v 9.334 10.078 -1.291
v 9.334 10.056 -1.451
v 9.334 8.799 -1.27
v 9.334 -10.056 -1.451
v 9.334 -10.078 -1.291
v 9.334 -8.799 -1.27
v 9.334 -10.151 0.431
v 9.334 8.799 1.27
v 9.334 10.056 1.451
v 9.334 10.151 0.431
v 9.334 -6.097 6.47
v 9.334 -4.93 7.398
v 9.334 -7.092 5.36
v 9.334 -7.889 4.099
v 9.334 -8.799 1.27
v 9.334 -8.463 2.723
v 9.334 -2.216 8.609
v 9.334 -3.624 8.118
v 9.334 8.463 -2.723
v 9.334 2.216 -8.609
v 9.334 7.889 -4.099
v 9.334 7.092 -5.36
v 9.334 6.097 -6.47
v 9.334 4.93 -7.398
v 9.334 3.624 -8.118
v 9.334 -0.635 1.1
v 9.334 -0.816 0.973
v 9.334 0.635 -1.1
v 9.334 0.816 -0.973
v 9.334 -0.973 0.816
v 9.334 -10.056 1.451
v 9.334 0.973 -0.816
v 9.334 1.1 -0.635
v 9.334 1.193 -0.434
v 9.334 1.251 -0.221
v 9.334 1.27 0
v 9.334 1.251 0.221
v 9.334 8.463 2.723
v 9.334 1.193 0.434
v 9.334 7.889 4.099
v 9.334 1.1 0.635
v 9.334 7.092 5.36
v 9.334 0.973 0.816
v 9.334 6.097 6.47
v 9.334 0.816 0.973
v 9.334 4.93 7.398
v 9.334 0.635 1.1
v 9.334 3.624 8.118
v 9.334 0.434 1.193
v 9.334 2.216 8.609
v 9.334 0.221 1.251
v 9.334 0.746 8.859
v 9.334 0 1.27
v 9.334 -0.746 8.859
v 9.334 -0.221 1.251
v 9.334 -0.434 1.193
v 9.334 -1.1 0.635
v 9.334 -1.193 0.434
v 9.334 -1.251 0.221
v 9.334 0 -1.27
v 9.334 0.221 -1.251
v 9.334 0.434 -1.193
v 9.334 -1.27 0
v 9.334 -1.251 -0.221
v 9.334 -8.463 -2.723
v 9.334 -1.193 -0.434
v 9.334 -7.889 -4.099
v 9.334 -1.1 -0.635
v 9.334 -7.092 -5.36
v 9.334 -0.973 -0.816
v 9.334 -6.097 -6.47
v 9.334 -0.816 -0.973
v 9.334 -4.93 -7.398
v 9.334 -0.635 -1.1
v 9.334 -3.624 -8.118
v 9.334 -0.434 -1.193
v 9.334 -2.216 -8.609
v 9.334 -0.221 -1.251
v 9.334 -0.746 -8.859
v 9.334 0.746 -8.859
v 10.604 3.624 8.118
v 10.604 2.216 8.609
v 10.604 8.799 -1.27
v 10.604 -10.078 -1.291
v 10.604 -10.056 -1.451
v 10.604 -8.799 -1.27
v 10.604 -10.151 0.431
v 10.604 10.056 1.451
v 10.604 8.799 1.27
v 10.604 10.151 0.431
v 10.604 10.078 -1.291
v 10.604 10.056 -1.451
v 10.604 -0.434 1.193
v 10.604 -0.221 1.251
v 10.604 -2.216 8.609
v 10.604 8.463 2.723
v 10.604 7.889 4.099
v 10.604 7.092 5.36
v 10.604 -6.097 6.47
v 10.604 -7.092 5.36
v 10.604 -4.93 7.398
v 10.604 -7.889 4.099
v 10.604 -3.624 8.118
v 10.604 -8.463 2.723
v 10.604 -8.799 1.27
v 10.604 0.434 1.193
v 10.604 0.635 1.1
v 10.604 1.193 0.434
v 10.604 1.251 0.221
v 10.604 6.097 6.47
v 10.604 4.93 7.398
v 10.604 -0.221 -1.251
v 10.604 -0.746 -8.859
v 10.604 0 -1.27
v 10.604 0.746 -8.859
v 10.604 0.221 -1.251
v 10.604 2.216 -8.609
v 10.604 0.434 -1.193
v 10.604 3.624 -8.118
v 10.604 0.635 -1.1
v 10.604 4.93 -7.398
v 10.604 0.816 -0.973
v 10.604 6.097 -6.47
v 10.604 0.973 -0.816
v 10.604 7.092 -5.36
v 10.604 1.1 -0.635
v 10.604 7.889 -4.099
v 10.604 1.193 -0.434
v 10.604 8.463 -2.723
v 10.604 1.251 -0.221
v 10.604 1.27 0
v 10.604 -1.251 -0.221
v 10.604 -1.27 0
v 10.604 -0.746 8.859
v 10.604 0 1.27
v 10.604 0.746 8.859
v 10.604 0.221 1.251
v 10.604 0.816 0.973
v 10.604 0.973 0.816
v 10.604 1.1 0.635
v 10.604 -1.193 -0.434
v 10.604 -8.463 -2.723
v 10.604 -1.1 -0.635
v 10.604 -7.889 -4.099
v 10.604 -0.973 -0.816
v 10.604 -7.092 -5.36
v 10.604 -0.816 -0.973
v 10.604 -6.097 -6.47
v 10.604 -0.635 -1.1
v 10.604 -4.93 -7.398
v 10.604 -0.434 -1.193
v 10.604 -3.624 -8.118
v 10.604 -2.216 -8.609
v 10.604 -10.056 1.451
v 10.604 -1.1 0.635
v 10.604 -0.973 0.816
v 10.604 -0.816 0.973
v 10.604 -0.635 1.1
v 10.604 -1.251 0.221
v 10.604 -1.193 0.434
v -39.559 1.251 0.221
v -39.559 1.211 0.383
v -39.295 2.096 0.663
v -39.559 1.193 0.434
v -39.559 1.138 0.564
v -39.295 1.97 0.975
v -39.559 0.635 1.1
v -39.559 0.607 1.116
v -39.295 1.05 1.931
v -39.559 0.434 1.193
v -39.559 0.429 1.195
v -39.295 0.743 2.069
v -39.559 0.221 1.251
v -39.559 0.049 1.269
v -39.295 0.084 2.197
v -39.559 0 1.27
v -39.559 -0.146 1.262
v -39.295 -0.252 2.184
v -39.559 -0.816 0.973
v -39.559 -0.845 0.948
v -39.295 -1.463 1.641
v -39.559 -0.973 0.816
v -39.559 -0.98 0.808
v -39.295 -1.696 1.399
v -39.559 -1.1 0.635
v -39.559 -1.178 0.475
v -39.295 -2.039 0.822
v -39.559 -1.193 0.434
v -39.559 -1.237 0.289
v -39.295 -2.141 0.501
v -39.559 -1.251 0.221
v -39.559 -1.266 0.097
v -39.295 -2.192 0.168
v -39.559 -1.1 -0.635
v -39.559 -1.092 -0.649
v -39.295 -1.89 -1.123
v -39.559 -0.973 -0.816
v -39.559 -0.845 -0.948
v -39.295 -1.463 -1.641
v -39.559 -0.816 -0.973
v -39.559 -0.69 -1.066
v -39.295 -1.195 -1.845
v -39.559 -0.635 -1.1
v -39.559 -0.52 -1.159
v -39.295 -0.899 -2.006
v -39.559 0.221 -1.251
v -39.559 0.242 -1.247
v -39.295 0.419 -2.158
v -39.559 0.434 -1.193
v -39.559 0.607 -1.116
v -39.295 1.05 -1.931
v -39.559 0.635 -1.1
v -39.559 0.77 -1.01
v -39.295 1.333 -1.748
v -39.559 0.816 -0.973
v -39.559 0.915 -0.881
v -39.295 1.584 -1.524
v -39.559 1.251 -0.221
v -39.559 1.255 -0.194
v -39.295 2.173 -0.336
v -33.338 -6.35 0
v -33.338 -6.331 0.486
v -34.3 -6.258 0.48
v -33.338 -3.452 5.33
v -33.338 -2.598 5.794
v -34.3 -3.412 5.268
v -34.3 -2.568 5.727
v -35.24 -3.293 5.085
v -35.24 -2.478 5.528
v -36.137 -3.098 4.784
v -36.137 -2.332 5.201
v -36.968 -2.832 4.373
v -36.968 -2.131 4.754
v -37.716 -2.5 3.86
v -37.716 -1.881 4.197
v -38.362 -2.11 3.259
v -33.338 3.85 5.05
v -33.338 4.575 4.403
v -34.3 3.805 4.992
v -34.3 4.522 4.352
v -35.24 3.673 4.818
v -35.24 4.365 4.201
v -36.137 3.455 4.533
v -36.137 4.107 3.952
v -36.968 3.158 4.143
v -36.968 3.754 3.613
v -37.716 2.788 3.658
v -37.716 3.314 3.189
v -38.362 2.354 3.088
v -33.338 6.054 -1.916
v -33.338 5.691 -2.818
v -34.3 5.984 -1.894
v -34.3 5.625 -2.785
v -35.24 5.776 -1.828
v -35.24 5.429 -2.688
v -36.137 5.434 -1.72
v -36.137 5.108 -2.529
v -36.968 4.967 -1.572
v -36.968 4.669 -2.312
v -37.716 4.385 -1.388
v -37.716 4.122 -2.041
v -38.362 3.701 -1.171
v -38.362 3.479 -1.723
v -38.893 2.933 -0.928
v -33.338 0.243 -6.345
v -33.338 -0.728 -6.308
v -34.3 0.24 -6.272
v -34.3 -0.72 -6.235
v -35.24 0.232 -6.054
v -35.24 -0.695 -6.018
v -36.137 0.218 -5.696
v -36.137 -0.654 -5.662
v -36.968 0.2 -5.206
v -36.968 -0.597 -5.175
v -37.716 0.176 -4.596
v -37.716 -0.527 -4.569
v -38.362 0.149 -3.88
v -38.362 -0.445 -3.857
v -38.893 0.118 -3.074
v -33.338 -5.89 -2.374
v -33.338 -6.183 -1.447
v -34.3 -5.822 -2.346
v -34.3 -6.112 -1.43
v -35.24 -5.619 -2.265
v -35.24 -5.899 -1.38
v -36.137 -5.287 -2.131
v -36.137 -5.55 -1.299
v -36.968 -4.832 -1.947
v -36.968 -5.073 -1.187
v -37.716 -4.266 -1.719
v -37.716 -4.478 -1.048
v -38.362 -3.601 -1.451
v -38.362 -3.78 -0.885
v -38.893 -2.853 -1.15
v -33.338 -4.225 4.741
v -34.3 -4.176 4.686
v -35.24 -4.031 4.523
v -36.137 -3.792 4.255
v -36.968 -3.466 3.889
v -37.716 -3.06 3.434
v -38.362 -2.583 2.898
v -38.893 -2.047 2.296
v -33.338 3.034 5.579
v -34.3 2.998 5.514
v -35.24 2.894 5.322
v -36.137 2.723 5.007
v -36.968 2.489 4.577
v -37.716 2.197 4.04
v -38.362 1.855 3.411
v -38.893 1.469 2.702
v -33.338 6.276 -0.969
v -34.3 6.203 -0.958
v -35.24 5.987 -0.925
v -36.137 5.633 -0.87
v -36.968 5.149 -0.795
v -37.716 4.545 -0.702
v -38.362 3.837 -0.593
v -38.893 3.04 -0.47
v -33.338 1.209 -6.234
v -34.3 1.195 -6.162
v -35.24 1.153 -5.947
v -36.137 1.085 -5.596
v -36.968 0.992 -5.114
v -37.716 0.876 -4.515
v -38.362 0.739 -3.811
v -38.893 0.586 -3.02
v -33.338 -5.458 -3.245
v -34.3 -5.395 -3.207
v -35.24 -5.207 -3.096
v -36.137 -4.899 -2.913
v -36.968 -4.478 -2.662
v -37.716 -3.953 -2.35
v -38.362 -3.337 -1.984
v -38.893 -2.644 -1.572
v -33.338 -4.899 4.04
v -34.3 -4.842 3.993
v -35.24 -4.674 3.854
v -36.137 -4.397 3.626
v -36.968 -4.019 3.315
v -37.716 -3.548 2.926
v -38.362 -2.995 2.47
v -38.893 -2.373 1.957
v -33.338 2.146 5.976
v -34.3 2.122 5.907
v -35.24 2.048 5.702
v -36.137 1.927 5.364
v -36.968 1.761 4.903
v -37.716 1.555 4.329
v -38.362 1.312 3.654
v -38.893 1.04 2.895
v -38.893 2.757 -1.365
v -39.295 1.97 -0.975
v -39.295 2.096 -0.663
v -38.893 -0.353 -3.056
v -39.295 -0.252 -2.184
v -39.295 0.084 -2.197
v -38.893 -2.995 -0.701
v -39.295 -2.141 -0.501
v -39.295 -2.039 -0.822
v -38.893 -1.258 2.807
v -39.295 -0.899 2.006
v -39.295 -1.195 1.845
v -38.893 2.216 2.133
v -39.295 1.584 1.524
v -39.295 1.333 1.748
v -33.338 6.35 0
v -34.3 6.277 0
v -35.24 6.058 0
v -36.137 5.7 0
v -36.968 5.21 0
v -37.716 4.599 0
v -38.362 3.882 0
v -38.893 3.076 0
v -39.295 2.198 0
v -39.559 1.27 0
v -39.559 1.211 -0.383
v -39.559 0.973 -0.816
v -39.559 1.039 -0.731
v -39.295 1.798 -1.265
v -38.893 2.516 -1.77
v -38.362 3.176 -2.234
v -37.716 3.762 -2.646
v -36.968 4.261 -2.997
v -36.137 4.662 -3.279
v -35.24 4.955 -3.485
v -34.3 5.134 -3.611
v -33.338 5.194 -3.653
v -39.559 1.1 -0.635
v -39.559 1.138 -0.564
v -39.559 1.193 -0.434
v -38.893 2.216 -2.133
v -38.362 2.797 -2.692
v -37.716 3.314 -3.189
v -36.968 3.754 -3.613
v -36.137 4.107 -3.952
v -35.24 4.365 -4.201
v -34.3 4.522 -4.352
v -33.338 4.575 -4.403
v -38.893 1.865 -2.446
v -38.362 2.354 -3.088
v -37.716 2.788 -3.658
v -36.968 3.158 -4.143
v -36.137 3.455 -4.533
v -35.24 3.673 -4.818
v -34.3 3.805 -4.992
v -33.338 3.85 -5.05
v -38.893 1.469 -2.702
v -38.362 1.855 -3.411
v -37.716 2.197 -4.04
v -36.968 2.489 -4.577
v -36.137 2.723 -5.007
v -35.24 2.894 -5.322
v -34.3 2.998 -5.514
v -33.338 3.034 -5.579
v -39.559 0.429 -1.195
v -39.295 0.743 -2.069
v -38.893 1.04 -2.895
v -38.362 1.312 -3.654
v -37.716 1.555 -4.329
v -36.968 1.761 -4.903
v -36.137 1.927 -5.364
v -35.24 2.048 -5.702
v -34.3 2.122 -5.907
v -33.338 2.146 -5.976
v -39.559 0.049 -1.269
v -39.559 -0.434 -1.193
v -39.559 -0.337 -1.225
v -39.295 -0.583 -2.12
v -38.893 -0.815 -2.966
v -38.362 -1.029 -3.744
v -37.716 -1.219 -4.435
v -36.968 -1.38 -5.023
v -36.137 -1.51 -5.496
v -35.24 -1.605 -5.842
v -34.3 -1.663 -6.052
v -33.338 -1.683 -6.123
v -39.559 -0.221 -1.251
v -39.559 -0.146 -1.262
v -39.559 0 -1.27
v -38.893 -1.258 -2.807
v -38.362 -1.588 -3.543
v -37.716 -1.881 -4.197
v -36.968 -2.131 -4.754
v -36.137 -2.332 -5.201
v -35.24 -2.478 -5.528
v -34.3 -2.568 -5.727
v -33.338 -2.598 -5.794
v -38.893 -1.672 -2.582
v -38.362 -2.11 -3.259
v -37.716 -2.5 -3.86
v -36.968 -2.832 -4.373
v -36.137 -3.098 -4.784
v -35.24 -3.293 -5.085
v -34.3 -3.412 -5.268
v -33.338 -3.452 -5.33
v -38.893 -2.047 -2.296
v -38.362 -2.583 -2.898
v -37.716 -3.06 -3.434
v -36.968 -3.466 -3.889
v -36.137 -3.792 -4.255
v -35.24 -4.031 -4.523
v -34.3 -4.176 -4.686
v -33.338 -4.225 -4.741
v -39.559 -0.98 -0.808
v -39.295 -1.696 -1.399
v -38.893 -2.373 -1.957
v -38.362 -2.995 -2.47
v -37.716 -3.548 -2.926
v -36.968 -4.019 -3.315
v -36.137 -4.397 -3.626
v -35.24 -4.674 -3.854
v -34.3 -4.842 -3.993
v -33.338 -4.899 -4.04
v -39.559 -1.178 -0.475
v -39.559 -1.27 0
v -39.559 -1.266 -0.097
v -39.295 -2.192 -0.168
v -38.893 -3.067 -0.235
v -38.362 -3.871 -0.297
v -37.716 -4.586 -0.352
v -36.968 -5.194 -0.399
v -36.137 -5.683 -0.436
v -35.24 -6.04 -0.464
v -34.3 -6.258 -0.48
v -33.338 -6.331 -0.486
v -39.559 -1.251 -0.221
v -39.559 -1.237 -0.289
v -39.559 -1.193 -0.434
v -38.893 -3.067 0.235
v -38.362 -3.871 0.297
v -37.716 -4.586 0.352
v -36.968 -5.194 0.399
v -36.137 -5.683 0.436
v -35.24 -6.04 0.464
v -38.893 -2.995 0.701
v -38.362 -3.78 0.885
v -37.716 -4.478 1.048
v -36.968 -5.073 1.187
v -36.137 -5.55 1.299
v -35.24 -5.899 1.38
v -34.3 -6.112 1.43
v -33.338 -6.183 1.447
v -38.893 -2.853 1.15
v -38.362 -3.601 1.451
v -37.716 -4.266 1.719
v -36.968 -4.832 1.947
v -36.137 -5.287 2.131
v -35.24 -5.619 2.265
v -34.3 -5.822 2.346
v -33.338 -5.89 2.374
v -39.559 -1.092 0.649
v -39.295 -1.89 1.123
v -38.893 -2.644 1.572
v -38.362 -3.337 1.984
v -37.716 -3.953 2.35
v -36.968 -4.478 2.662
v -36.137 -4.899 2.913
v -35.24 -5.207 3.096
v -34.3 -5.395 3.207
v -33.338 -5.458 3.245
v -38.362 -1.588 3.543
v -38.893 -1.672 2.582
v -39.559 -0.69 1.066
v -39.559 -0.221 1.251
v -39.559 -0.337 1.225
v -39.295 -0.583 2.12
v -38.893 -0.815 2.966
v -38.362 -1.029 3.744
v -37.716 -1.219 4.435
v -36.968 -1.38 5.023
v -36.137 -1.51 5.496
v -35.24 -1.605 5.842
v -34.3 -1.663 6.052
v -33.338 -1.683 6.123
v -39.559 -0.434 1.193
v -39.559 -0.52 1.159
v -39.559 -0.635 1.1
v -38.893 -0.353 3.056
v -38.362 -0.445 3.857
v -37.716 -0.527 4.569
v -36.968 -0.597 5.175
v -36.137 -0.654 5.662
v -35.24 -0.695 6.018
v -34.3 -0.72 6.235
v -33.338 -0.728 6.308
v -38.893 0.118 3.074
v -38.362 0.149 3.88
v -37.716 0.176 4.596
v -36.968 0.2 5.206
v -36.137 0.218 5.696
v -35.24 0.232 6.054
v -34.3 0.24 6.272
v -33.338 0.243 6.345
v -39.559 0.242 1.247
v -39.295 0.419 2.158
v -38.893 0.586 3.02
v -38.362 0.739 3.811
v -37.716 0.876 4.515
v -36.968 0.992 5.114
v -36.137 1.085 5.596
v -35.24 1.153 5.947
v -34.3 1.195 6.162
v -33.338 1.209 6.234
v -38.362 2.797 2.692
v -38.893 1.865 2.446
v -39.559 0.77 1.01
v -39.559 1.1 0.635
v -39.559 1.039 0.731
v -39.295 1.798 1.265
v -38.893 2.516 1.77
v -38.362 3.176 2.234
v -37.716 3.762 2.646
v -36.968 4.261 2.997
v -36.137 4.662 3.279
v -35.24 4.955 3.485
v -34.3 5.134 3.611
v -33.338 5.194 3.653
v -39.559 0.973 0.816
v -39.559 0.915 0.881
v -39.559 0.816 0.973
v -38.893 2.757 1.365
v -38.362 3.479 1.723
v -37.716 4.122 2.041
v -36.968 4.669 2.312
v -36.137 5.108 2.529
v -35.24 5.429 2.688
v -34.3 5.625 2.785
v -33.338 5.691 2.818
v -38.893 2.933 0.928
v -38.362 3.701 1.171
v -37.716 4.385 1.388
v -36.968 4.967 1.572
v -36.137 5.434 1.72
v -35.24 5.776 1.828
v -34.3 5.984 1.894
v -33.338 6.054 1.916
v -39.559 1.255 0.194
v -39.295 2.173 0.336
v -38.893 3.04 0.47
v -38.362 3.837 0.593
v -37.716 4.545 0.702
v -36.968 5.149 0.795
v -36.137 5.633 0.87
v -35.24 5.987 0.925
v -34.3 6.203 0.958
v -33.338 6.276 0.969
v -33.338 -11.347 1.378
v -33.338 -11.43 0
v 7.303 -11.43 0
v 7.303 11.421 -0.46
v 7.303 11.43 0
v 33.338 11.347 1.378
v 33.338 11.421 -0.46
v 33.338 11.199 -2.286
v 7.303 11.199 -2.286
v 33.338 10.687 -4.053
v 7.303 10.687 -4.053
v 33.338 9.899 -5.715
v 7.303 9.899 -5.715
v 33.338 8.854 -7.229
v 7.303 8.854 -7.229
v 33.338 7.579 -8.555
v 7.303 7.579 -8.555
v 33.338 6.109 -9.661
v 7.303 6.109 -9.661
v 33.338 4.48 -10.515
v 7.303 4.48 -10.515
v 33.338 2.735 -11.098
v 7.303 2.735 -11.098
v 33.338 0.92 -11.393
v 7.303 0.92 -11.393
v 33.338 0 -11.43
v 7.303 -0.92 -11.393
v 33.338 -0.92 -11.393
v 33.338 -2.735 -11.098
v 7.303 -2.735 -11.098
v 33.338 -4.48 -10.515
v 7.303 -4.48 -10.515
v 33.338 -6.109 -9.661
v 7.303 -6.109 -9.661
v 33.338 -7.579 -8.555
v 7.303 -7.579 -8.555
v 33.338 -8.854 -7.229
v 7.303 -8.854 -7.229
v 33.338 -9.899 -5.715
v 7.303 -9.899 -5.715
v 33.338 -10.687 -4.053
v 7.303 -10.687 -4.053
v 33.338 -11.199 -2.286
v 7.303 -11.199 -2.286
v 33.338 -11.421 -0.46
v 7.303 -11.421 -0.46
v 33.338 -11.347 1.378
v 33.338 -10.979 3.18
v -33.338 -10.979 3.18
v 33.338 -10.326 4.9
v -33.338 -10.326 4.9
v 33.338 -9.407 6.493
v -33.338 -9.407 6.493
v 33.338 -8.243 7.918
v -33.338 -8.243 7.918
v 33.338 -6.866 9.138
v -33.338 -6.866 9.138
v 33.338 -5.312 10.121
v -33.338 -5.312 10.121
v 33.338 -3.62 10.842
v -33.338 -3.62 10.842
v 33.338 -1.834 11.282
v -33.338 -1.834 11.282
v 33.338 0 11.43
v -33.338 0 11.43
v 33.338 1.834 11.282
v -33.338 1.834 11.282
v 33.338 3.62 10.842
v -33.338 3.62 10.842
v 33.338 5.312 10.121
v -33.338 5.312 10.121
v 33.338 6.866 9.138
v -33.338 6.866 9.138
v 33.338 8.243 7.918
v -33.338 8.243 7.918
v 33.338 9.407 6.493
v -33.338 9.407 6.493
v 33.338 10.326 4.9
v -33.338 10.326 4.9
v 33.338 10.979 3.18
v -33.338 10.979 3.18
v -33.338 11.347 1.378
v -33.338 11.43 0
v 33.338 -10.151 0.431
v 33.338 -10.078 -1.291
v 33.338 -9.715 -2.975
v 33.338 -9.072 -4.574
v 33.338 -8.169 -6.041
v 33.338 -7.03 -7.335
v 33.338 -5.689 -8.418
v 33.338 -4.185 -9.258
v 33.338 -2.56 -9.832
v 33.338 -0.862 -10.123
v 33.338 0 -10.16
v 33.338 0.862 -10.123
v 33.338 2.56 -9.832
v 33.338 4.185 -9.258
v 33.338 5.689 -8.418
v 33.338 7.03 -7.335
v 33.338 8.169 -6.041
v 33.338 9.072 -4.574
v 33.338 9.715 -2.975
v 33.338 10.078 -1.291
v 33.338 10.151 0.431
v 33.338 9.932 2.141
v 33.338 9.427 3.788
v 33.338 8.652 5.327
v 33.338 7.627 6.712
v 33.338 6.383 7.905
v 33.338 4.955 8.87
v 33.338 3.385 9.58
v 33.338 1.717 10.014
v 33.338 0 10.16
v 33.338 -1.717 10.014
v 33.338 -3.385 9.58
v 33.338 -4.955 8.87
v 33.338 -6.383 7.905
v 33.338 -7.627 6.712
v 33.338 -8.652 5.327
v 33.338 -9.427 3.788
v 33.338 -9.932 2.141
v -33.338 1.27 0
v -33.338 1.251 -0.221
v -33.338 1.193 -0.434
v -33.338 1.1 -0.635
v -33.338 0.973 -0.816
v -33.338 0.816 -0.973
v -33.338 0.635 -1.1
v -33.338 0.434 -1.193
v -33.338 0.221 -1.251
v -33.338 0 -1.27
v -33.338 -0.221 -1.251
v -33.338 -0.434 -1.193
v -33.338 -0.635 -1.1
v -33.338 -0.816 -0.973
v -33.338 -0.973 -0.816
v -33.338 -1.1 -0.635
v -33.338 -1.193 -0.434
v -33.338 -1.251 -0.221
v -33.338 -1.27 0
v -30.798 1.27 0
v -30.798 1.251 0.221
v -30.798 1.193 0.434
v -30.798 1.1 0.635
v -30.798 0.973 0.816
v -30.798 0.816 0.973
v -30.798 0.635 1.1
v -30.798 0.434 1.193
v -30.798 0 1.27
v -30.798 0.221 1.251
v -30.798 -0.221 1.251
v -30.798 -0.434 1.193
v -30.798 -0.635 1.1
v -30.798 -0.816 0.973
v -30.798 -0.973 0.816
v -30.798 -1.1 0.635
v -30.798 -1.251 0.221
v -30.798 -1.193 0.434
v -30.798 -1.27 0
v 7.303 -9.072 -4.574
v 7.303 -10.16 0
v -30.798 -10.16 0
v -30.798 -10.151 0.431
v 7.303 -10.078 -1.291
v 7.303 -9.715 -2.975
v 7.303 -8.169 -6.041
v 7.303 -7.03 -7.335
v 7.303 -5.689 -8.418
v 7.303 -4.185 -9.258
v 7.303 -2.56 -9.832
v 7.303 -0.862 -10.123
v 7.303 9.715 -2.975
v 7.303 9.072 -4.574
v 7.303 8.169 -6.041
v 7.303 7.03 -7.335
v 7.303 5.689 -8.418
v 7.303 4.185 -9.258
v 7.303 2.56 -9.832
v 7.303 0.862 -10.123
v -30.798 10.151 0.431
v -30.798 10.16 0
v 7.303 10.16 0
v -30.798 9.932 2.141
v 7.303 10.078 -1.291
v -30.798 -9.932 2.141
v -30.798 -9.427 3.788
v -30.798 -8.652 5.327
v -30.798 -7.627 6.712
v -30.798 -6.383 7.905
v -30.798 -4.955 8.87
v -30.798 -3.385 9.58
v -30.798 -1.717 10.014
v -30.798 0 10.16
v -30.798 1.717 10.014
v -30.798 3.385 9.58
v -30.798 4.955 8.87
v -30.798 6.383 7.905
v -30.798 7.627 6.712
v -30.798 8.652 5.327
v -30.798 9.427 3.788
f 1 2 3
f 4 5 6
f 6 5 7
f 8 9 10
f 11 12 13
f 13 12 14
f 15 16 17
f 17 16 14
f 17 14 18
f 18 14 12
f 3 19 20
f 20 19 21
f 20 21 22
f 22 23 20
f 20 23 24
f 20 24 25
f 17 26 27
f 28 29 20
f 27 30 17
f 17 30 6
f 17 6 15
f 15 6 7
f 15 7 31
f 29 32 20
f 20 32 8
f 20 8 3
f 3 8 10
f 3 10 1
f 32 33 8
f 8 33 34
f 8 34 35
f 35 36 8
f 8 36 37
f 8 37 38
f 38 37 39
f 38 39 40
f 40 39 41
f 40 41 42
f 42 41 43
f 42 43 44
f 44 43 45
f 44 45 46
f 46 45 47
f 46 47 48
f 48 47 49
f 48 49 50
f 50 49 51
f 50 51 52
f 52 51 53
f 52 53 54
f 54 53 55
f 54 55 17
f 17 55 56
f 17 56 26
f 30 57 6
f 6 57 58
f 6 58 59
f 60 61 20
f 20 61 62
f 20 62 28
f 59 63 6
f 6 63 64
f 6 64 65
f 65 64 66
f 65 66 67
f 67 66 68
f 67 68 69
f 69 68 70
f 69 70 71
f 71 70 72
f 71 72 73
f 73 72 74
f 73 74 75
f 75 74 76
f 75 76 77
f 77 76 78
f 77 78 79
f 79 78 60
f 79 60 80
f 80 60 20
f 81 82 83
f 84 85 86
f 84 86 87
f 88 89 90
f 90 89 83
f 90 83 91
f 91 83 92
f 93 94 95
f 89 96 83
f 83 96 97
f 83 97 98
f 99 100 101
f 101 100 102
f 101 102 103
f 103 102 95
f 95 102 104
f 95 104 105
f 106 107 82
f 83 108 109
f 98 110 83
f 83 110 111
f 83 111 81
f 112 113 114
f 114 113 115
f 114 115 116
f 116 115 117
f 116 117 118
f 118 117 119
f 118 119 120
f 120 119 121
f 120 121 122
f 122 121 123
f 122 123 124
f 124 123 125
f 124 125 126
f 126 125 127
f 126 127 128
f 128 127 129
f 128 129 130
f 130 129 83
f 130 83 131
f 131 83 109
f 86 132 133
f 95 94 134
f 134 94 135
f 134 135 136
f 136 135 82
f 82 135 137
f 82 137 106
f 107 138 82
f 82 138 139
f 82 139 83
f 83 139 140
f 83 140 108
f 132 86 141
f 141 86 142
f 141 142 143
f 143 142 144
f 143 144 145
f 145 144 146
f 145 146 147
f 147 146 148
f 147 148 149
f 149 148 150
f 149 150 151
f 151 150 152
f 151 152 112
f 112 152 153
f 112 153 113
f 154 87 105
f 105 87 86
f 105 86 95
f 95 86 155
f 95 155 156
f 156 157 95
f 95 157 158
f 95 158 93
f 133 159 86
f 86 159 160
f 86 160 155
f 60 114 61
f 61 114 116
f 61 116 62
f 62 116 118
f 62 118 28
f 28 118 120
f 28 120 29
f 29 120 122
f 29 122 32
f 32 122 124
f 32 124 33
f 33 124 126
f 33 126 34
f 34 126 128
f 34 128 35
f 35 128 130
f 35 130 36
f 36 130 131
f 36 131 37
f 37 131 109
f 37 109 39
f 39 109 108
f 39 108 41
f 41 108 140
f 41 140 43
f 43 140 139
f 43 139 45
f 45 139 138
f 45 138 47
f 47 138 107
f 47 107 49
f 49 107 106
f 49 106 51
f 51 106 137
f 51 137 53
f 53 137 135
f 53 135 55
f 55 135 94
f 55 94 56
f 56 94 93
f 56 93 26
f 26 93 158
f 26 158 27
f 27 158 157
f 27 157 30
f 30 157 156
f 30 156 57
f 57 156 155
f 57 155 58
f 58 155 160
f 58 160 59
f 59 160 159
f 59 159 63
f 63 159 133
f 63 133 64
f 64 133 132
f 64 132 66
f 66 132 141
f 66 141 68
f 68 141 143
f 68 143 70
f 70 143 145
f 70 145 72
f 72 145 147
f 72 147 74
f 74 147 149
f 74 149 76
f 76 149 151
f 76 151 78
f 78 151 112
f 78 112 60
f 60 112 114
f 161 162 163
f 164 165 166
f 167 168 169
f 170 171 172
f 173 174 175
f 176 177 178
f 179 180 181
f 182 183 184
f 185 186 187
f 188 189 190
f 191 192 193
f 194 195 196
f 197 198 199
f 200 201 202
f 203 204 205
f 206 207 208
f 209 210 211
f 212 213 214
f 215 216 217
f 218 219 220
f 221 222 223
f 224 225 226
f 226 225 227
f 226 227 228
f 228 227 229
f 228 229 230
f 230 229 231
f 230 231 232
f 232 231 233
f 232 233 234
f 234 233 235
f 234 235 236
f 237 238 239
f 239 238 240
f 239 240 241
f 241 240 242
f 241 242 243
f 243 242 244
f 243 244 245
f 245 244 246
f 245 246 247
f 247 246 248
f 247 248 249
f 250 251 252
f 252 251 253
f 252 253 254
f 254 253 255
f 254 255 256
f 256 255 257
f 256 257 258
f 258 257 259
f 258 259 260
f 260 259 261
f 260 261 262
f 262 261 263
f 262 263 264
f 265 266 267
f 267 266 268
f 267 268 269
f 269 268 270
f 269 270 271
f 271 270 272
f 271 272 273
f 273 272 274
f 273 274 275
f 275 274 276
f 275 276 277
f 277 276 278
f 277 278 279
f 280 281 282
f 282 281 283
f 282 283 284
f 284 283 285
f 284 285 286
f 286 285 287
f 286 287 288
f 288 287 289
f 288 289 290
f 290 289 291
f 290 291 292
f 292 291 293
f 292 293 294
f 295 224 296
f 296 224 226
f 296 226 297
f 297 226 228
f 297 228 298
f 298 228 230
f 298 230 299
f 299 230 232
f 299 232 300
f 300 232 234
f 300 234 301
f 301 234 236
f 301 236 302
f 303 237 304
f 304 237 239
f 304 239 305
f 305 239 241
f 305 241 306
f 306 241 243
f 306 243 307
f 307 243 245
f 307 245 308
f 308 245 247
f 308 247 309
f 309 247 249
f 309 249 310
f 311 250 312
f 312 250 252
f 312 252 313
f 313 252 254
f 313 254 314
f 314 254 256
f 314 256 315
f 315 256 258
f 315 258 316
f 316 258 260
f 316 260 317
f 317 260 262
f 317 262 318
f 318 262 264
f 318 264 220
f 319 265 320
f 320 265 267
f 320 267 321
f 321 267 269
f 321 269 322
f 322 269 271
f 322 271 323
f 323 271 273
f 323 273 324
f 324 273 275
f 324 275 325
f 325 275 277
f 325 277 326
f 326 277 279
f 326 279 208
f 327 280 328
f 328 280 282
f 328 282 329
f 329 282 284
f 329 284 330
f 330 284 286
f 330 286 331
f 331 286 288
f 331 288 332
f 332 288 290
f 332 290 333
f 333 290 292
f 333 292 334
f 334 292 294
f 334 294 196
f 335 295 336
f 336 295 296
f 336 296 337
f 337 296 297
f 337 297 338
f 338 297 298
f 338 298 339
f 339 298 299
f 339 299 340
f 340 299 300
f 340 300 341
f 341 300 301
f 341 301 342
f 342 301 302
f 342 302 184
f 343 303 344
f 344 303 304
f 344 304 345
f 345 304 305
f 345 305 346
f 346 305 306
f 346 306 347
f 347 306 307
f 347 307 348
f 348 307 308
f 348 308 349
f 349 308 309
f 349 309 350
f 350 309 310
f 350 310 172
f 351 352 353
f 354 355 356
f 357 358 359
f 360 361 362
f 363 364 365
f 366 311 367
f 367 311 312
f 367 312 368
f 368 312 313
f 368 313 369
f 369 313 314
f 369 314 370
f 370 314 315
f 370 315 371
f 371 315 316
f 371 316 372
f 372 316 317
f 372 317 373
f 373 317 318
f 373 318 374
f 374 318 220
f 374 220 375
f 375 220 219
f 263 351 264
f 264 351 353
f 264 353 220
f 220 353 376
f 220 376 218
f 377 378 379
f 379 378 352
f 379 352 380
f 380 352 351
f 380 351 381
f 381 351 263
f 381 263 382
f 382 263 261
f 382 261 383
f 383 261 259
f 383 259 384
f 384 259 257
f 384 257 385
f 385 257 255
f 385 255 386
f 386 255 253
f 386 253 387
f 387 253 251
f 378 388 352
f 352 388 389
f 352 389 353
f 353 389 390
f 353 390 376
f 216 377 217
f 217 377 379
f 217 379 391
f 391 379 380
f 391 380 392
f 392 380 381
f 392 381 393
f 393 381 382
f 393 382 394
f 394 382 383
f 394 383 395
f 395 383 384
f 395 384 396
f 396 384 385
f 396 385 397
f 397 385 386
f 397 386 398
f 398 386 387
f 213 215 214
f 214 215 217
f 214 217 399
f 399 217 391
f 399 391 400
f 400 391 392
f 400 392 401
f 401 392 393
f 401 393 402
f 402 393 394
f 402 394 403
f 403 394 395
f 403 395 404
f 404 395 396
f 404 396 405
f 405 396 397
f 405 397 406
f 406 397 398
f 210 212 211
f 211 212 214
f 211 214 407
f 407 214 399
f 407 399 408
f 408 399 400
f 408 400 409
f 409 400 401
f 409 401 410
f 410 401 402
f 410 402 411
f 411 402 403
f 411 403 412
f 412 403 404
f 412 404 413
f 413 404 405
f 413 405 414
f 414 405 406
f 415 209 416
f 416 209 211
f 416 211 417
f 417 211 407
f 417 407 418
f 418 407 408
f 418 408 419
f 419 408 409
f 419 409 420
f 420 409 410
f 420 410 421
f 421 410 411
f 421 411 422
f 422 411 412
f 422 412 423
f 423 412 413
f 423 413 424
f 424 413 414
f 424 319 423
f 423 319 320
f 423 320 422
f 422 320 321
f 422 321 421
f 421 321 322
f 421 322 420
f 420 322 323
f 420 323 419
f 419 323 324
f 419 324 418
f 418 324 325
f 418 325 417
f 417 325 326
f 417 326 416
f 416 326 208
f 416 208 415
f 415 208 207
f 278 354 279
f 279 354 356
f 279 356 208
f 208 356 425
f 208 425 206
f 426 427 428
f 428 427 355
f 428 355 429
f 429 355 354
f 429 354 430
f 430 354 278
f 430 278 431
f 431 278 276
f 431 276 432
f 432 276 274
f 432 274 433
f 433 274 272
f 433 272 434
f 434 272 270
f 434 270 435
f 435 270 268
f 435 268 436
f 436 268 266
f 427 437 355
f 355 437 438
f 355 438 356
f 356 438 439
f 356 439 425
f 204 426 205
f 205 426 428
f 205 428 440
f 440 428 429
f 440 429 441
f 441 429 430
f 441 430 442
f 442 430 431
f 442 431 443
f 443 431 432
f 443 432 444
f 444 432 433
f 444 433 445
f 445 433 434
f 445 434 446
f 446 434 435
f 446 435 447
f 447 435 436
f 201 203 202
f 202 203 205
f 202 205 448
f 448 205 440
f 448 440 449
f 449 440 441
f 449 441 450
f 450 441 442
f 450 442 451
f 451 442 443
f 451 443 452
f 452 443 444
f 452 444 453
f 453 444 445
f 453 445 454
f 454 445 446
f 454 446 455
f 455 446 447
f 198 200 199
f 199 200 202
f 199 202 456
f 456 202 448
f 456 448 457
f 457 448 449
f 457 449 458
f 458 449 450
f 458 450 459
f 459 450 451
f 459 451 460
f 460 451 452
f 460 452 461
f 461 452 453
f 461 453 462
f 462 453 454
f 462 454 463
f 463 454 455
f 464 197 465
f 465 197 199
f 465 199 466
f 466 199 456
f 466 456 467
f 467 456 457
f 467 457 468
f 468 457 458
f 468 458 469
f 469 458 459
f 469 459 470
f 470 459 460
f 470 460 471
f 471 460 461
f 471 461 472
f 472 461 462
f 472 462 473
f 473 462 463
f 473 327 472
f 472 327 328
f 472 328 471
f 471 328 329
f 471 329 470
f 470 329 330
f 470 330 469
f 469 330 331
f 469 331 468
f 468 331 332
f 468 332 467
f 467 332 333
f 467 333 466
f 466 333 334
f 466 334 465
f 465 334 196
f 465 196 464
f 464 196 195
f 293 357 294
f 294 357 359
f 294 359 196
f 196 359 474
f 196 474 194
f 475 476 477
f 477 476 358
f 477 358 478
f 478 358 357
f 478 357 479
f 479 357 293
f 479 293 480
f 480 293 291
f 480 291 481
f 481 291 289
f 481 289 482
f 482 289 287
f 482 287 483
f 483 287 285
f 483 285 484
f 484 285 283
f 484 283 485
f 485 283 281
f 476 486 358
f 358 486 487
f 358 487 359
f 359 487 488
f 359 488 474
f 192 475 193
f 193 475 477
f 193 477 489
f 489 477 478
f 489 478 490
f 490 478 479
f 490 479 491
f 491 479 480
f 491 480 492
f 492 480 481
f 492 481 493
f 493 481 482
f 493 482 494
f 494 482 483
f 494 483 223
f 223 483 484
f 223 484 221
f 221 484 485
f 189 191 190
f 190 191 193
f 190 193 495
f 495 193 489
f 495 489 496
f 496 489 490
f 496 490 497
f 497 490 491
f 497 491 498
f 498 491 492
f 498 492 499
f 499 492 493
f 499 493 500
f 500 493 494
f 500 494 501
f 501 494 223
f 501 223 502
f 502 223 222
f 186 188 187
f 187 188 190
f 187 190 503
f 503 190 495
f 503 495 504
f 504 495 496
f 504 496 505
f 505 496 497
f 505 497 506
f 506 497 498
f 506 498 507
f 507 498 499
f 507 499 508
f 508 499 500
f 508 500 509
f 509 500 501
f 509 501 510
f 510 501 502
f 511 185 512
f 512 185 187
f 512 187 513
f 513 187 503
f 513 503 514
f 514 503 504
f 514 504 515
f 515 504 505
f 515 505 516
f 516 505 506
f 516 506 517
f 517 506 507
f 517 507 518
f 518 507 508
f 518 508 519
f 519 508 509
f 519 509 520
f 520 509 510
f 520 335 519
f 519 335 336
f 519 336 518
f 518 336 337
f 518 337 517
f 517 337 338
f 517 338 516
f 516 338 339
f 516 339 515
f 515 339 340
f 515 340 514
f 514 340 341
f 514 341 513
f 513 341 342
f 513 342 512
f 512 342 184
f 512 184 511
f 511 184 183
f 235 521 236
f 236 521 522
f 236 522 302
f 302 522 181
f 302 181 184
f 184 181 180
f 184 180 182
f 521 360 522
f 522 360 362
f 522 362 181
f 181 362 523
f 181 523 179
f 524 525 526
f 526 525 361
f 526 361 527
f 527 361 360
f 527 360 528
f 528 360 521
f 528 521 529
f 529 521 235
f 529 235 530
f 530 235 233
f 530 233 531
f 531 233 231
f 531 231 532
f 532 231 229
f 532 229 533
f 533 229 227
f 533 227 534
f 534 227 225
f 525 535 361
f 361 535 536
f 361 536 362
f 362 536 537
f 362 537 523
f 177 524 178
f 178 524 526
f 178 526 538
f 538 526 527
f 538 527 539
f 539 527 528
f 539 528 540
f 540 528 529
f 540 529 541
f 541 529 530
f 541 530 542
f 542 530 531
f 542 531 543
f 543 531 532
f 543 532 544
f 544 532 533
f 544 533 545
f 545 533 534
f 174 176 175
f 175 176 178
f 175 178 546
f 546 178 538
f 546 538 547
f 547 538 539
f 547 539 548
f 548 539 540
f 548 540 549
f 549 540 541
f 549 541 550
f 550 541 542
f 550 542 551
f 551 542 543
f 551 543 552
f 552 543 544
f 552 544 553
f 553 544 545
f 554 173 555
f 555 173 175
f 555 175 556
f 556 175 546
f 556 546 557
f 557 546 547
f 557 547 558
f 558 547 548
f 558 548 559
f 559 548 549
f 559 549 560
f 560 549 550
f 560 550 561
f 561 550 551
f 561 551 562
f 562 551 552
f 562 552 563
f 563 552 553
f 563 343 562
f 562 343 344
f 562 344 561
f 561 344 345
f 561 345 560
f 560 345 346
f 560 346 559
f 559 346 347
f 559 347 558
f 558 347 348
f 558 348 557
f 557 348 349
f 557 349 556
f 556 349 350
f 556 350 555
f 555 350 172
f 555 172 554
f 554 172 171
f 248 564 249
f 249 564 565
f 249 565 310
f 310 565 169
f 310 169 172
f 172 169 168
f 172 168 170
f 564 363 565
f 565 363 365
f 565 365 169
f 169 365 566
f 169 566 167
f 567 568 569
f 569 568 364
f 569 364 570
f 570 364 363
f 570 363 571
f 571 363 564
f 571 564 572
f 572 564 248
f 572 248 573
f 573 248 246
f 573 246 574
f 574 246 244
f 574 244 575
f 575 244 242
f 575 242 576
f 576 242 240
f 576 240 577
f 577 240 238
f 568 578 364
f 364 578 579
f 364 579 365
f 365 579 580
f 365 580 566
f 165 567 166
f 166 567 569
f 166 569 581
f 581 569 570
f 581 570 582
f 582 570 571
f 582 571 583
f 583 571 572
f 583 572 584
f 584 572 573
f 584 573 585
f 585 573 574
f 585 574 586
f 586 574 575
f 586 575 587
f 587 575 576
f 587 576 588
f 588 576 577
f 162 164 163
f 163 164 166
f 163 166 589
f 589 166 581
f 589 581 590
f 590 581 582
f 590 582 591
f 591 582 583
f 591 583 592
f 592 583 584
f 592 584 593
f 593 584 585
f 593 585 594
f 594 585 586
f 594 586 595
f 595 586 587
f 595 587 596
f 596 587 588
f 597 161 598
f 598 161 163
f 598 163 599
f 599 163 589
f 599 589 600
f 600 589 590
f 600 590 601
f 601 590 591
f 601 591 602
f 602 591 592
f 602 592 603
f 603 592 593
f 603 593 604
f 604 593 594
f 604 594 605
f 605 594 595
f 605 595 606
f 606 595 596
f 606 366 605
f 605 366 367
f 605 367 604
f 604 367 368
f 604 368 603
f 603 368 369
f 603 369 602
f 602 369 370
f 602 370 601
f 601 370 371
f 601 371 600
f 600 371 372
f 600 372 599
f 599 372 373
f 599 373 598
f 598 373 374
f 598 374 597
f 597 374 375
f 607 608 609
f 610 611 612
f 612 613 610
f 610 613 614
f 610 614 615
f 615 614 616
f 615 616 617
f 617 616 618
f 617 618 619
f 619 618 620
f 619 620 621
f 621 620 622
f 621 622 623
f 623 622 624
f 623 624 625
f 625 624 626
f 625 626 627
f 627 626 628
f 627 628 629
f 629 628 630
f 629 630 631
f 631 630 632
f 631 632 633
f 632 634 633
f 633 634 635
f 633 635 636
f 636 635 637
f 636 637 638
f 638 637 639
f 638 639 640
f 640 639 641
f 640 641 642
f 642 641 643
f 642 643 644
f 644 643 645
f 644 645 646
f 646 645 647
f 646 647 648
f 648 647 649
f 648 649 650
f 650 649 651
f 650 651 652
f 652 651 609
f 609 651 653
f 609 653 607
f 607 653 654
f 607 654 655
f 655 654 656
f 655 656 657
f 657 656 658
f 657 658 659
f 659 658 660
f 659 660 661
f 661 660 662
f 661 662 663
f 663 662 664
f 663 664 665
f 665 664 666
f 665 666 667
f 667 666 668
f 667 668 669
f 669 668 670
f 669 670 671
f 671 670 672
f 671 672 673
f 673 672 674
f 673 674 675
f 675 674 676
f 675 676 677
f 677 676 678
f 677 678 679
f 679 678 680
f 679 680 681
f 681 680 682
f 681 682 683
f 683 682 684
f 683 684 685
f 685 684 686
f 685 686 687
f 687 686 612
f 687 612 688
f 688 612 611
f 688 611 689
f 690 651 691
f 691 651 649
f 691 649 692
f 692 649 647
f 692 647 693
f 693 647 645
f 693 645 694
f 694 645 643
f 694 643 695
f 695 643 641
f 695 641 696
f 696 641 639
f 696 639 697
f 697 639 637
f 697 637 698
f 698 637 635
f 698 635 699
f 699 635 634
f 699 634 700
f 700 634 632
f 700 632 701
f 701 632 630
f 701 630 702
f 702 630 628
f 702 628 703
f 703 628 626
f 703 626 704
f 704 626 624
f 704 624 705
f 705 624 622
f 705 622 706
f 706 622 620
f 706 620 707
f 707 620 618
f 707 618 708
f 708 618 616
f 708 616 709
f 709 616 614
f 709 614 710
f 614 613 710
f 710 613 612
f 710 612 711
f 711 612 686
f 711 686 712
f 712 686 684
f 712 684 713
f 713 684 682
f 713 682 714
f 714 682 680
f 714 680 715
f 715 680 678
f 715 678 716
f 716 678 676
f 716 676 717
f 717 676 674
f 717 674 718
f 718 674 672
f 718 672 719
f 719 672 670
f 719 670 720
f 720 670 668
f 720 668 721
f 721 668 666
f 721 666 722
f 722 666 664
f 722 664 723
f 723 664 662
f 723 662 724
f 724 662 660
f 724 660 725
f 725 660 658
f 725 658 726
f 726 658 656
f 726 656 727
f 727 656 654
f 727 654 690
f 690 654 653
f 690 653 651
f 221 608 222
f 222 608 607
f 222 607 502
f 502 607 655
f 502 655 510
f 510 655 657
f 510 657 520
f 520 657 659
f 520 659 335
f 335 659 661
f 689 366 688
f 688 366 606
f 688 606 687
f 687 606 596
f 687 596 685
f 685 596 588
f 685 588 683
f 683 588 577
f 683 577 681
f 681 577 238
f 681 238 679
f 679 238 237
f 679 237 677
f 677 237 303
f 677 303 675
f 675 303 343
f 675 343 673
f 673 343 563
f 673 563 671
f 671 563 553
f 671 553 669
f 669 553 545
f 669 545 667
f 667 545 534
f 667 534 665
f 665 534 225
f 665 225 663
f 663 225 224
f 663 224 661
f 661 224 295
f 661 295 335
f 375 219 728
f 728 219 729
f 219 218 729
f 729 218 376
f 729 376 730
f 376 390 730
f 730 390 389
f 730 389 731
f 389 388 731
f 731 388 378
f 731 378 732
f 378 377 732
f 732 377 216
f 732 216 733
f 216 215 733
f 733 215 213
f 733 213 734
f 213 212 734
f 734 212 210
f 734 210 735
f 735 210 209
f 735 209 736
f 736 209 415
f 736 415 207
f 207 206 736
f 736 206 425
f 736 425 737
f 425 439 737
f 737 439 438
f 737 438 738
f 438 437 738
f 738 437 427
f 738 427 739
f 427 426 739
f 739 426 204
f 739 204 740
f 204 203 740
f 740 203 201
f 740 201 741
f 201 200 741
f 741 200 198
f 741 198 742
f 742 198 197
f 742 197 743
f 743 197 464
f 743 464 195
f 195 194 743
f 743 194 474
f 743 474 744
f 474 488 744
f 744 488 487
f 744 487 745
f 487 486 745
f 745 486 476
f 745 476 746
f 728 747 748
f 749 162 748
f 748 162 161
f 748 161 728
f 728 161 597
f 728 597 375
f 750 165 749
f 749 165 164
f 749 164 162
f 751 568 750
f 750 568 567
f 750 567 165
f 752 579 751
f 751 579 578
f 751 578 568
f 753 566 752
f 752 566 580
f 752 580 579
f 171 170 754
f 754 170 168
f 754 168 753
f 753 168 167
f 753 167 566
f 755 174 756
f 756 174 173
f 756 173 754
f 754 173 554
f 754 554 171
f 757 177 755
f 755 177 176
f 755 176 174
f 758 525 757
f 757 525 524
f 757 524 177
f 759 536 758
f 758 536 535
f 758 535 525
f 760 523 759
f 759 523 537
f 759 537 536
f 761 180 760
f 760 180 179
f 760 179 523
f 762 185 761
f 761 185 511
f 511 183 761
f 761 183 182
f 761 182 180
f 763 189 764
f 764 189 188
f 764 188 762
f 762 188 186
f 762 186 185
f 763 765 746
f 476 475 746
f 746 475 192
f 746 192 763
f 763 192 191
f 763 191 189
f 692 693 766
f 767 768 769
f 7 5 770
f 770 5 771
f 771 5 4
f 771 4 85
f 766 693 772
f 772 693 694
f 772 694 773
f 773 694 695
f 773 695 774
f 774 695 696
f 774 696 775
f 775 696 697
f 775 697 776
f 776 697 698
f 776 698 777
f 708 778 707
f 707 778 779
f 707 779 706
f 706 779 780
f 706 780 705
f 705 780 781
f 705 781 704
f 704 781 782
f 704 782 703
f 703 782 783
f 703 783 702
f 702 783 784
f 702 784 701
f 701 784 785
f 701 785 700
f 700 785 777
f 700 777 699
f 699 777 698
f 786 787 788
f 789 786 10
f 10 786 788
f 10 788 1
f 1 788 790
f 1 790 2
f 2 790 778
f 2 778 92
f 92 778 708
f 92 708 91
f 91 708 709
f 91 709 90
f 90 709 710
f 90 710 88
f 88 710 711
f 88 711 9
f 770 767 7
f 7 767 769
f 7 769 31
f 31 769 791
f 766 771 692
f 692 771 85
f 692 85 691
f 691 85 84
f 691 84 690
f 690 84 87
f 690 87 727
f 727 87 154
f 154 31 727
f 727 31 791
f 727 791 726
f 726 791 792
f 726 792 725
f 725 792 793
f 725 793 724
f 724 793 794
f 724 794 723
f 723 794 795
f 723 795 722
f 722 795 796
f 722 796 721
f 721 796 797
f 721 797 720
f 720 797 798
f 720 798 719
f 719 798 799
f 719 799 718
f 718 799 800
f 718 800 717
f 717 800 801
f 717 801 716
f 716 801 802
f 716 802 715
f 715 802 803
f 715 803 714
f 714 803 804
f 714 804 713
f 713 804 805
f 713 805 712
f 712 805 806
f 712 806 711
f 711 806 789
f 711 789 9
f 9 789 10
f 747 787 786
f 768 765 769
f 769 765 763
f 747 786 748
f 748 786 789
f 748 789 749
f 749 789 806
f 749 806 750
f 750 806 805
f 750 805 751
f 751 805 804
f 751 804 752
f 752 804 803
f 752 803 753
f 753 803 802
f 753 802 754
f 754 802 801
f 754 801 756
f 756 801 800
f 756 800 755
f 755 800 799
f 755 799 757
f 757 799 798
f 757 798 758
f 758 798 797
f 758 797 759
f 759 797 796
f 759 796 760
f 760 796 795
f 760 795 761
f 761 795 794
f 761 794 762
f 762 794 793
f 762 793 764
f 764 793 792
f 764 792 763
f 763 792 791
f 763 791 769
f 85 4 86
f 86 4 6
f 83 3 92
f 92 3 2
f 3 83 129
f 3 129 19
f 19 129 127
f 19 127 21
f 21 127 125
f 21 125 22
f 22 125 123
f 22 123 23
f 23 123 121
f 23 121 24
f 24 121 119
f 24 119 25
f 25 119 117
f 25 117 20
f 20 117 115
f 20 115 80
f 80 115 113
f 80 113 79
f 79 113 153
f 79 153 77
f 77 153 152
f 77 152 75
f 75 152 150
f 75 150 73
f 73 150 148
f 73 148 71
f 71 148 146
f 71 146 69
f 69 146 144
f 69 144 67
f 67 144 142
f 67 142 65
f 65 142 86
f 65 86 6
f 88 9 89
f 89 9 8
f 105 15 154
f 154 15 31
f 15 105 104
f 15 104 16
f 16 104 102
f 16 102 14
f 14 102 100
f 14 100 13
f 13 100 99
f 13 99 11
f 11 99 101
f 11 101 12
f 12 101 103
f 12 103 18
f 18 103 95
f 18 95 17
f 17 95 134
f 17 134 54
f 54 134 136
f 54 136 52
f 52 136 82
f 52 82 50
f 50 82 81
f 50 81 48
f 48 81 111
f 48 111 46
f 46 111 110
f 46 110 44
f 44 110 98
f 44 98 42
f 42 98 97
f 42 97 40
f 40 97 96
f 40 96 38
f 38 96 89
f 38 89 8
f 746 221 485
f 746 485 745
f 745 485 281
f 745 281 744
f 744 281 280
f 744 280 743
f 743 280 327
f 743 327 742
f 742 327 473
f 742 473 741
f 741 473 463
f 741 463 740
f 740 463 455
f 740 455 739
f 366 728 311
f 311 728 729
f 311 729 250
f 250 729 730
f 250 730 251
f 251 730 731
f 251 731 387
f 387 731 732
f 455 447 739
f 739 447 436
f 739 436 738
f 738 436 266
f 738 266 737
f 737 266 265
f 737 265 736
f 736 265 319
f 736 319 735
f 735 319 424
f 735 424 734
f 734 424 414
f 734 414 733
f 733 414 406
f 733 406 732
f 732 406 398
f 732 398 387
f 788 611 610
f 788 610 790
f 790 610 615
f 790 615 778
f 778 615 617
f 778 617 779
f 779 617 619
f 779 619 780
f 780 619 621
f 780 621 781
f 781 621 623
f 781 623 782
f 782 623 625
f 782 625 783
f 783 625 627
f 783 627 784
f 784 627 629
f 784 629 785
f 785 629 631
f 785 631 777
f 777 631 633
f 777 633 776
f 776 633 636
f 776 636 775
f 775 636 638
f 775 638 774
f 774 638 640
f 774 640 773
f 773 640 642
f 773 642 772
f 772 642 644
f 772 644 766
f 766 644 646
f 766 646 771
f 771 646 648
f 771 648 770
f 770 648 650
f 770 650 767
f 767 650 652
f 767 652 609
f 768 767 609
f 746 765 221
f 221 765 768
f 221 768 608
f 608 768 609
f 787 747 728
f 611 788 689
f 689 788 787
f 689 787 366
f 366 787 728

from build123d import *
from build123d.topology import SkipClean

# Parameters (mm, degrees)
SKETCH1_R              = 11.43
MAIN_SHAFT_DEPTH       = 33.3375
NEEDLE_HOLE_DEPTH      = 69.606453231
NEEDLE_HOLE_DEPTH_BACK = 69.606453231
SKETCH5_R              = 1.27
SKETCH7_R              = 10.16
SYRINGE_SLOT_DEPTH     = 40.132
SPRING_START           = -22.733
SKETCH9_R              = 10.16
SPRING_SLOT_DEPTH      = 22.733
TABS_START             = -1.27
TABS_DEPTH             = 1.27
SKETCH12_W             = 40.64
SKETCH12_H             = 22.86
SYRINGE_INSERT_DEPTH   = 43.734300331


with BuildPart() as part:
    # Sketch1 → Main Shaft (new, symmetric)
    with BuildSketch(Plane(origin=(0, 0, 0), x_dir=(0, 0, -1), z_dir=(1, 0, 0))):
        Circle(SKETCH1_R)
    extrude(amount=MAIN_SHAFT_DEPTH, both=True)

    # Sketch4 → Bumpout (revolve)
    with BuildSketch(Plane.XY):
        with BuildLine():
            Line((-33.3375, 0), (-33.3375, 6.35))
            ThreePointArc((-33.3375, 6.35), (-37.827628061, 4.490128061), (-39.6875, 0))
            Line((-39.6875, 0), (-33.3375, 0))
        make_face()
    revolve(axis=Axis((88.99, 0, 0), (-1, 0, 0)))

    # Sketch5 → Needle Hole (cut, two sides: drawn at the far end of the back side and taken through both)
    with BuildSketch(Plane.ZY.offset(33.3375).offset(-NEEDLE_HOLE_DEPTH_BACK)):
        with Locations(Location((0, 0, 0), (0, 0, 180))):
            Circle(SKETCH5_R)
    extrude(amount=NEEDLE_HOLE_DEPTH + NEEDLE_HOLE_DEPTH_BACK, mode=Mode.SUBTRACT)

    # Sketch7 → Syringe Slot (cut)
    with BuildSketch(Plane.ZY.offset(30.7975)):
        Circle(SKETCH7_R)
    extrude(amount=-SYRINGE_SLOT_DEPTH, mode=Mode.SUBTRACT)

    # Sketch9 → Spring Slot (cut)
    with BuildSketch(Plane(origin=(33.3375, 0, 0), x_dir=(0, 0, -1), z_dir=(1, 0, 0)).offset(SPRING_START)):
        with Locations(Location((0, 0, 0), (0, 0, 180))):
            Circle(SKETCH9_R)
    extrude(amount=SPRING_SLOT_DEPTH, mode=Mode.SUBTRACT)

    # Sketch11 → Tabs (cut)
    with SkipClean():  # the faces are left unmerged after this step: merging them gives an invalid solid
        with BuildSketch(Plane(origin=(10.6045, 0, 0), x_dir=(0, 0, -1), z_dir=(1, 0, 0)).offset(TABS_START)):
            with BuildLine():
                Line((-1.27, 8.798818102), (-1.451428571, 10.055792117))
                ThreePointArc((-1.451428571, 10.055792117), (-10.16, 0), (-1.451428571, -10.055792117))
                Line((-1.451428571, -10.055792117), (-1.27, -8.798818102))
                ThreePointArc((-1.27, -8.798818102), (-8.89, 0), (-1.27, 8.798818102))
            make_face()
            with BuildLine():
                Line((1.27, 8.798818102), (1.451428571, 10.055792117))
                ThreePointArc((1.451428571, 10.055792117), (10.16, 0), (1.451428571, -10.055792117))
                Line((1.451428571, -10.055792117), (1.27, -8.798818102))
                ThreePointArc((1.27, -8.798818102), (8.89, 0), (1.27, 8.798818102))
            make_face()
        extrude(amount=TABS_DEPTH, mode=Mode.SUBTRACT)

    # Sketch12 → Syringe Insert (cut, through all)
    with BuildSketch(Plane.XY):
        with Locations((-13.0175, 0)):
            Rectangle(SKETCH12_W, SKETCH12_H)
    extrude(amount=-SYRINGE_INSERT_DEPTH, mode=Mode.SUBTRACT)


solid = part.part
